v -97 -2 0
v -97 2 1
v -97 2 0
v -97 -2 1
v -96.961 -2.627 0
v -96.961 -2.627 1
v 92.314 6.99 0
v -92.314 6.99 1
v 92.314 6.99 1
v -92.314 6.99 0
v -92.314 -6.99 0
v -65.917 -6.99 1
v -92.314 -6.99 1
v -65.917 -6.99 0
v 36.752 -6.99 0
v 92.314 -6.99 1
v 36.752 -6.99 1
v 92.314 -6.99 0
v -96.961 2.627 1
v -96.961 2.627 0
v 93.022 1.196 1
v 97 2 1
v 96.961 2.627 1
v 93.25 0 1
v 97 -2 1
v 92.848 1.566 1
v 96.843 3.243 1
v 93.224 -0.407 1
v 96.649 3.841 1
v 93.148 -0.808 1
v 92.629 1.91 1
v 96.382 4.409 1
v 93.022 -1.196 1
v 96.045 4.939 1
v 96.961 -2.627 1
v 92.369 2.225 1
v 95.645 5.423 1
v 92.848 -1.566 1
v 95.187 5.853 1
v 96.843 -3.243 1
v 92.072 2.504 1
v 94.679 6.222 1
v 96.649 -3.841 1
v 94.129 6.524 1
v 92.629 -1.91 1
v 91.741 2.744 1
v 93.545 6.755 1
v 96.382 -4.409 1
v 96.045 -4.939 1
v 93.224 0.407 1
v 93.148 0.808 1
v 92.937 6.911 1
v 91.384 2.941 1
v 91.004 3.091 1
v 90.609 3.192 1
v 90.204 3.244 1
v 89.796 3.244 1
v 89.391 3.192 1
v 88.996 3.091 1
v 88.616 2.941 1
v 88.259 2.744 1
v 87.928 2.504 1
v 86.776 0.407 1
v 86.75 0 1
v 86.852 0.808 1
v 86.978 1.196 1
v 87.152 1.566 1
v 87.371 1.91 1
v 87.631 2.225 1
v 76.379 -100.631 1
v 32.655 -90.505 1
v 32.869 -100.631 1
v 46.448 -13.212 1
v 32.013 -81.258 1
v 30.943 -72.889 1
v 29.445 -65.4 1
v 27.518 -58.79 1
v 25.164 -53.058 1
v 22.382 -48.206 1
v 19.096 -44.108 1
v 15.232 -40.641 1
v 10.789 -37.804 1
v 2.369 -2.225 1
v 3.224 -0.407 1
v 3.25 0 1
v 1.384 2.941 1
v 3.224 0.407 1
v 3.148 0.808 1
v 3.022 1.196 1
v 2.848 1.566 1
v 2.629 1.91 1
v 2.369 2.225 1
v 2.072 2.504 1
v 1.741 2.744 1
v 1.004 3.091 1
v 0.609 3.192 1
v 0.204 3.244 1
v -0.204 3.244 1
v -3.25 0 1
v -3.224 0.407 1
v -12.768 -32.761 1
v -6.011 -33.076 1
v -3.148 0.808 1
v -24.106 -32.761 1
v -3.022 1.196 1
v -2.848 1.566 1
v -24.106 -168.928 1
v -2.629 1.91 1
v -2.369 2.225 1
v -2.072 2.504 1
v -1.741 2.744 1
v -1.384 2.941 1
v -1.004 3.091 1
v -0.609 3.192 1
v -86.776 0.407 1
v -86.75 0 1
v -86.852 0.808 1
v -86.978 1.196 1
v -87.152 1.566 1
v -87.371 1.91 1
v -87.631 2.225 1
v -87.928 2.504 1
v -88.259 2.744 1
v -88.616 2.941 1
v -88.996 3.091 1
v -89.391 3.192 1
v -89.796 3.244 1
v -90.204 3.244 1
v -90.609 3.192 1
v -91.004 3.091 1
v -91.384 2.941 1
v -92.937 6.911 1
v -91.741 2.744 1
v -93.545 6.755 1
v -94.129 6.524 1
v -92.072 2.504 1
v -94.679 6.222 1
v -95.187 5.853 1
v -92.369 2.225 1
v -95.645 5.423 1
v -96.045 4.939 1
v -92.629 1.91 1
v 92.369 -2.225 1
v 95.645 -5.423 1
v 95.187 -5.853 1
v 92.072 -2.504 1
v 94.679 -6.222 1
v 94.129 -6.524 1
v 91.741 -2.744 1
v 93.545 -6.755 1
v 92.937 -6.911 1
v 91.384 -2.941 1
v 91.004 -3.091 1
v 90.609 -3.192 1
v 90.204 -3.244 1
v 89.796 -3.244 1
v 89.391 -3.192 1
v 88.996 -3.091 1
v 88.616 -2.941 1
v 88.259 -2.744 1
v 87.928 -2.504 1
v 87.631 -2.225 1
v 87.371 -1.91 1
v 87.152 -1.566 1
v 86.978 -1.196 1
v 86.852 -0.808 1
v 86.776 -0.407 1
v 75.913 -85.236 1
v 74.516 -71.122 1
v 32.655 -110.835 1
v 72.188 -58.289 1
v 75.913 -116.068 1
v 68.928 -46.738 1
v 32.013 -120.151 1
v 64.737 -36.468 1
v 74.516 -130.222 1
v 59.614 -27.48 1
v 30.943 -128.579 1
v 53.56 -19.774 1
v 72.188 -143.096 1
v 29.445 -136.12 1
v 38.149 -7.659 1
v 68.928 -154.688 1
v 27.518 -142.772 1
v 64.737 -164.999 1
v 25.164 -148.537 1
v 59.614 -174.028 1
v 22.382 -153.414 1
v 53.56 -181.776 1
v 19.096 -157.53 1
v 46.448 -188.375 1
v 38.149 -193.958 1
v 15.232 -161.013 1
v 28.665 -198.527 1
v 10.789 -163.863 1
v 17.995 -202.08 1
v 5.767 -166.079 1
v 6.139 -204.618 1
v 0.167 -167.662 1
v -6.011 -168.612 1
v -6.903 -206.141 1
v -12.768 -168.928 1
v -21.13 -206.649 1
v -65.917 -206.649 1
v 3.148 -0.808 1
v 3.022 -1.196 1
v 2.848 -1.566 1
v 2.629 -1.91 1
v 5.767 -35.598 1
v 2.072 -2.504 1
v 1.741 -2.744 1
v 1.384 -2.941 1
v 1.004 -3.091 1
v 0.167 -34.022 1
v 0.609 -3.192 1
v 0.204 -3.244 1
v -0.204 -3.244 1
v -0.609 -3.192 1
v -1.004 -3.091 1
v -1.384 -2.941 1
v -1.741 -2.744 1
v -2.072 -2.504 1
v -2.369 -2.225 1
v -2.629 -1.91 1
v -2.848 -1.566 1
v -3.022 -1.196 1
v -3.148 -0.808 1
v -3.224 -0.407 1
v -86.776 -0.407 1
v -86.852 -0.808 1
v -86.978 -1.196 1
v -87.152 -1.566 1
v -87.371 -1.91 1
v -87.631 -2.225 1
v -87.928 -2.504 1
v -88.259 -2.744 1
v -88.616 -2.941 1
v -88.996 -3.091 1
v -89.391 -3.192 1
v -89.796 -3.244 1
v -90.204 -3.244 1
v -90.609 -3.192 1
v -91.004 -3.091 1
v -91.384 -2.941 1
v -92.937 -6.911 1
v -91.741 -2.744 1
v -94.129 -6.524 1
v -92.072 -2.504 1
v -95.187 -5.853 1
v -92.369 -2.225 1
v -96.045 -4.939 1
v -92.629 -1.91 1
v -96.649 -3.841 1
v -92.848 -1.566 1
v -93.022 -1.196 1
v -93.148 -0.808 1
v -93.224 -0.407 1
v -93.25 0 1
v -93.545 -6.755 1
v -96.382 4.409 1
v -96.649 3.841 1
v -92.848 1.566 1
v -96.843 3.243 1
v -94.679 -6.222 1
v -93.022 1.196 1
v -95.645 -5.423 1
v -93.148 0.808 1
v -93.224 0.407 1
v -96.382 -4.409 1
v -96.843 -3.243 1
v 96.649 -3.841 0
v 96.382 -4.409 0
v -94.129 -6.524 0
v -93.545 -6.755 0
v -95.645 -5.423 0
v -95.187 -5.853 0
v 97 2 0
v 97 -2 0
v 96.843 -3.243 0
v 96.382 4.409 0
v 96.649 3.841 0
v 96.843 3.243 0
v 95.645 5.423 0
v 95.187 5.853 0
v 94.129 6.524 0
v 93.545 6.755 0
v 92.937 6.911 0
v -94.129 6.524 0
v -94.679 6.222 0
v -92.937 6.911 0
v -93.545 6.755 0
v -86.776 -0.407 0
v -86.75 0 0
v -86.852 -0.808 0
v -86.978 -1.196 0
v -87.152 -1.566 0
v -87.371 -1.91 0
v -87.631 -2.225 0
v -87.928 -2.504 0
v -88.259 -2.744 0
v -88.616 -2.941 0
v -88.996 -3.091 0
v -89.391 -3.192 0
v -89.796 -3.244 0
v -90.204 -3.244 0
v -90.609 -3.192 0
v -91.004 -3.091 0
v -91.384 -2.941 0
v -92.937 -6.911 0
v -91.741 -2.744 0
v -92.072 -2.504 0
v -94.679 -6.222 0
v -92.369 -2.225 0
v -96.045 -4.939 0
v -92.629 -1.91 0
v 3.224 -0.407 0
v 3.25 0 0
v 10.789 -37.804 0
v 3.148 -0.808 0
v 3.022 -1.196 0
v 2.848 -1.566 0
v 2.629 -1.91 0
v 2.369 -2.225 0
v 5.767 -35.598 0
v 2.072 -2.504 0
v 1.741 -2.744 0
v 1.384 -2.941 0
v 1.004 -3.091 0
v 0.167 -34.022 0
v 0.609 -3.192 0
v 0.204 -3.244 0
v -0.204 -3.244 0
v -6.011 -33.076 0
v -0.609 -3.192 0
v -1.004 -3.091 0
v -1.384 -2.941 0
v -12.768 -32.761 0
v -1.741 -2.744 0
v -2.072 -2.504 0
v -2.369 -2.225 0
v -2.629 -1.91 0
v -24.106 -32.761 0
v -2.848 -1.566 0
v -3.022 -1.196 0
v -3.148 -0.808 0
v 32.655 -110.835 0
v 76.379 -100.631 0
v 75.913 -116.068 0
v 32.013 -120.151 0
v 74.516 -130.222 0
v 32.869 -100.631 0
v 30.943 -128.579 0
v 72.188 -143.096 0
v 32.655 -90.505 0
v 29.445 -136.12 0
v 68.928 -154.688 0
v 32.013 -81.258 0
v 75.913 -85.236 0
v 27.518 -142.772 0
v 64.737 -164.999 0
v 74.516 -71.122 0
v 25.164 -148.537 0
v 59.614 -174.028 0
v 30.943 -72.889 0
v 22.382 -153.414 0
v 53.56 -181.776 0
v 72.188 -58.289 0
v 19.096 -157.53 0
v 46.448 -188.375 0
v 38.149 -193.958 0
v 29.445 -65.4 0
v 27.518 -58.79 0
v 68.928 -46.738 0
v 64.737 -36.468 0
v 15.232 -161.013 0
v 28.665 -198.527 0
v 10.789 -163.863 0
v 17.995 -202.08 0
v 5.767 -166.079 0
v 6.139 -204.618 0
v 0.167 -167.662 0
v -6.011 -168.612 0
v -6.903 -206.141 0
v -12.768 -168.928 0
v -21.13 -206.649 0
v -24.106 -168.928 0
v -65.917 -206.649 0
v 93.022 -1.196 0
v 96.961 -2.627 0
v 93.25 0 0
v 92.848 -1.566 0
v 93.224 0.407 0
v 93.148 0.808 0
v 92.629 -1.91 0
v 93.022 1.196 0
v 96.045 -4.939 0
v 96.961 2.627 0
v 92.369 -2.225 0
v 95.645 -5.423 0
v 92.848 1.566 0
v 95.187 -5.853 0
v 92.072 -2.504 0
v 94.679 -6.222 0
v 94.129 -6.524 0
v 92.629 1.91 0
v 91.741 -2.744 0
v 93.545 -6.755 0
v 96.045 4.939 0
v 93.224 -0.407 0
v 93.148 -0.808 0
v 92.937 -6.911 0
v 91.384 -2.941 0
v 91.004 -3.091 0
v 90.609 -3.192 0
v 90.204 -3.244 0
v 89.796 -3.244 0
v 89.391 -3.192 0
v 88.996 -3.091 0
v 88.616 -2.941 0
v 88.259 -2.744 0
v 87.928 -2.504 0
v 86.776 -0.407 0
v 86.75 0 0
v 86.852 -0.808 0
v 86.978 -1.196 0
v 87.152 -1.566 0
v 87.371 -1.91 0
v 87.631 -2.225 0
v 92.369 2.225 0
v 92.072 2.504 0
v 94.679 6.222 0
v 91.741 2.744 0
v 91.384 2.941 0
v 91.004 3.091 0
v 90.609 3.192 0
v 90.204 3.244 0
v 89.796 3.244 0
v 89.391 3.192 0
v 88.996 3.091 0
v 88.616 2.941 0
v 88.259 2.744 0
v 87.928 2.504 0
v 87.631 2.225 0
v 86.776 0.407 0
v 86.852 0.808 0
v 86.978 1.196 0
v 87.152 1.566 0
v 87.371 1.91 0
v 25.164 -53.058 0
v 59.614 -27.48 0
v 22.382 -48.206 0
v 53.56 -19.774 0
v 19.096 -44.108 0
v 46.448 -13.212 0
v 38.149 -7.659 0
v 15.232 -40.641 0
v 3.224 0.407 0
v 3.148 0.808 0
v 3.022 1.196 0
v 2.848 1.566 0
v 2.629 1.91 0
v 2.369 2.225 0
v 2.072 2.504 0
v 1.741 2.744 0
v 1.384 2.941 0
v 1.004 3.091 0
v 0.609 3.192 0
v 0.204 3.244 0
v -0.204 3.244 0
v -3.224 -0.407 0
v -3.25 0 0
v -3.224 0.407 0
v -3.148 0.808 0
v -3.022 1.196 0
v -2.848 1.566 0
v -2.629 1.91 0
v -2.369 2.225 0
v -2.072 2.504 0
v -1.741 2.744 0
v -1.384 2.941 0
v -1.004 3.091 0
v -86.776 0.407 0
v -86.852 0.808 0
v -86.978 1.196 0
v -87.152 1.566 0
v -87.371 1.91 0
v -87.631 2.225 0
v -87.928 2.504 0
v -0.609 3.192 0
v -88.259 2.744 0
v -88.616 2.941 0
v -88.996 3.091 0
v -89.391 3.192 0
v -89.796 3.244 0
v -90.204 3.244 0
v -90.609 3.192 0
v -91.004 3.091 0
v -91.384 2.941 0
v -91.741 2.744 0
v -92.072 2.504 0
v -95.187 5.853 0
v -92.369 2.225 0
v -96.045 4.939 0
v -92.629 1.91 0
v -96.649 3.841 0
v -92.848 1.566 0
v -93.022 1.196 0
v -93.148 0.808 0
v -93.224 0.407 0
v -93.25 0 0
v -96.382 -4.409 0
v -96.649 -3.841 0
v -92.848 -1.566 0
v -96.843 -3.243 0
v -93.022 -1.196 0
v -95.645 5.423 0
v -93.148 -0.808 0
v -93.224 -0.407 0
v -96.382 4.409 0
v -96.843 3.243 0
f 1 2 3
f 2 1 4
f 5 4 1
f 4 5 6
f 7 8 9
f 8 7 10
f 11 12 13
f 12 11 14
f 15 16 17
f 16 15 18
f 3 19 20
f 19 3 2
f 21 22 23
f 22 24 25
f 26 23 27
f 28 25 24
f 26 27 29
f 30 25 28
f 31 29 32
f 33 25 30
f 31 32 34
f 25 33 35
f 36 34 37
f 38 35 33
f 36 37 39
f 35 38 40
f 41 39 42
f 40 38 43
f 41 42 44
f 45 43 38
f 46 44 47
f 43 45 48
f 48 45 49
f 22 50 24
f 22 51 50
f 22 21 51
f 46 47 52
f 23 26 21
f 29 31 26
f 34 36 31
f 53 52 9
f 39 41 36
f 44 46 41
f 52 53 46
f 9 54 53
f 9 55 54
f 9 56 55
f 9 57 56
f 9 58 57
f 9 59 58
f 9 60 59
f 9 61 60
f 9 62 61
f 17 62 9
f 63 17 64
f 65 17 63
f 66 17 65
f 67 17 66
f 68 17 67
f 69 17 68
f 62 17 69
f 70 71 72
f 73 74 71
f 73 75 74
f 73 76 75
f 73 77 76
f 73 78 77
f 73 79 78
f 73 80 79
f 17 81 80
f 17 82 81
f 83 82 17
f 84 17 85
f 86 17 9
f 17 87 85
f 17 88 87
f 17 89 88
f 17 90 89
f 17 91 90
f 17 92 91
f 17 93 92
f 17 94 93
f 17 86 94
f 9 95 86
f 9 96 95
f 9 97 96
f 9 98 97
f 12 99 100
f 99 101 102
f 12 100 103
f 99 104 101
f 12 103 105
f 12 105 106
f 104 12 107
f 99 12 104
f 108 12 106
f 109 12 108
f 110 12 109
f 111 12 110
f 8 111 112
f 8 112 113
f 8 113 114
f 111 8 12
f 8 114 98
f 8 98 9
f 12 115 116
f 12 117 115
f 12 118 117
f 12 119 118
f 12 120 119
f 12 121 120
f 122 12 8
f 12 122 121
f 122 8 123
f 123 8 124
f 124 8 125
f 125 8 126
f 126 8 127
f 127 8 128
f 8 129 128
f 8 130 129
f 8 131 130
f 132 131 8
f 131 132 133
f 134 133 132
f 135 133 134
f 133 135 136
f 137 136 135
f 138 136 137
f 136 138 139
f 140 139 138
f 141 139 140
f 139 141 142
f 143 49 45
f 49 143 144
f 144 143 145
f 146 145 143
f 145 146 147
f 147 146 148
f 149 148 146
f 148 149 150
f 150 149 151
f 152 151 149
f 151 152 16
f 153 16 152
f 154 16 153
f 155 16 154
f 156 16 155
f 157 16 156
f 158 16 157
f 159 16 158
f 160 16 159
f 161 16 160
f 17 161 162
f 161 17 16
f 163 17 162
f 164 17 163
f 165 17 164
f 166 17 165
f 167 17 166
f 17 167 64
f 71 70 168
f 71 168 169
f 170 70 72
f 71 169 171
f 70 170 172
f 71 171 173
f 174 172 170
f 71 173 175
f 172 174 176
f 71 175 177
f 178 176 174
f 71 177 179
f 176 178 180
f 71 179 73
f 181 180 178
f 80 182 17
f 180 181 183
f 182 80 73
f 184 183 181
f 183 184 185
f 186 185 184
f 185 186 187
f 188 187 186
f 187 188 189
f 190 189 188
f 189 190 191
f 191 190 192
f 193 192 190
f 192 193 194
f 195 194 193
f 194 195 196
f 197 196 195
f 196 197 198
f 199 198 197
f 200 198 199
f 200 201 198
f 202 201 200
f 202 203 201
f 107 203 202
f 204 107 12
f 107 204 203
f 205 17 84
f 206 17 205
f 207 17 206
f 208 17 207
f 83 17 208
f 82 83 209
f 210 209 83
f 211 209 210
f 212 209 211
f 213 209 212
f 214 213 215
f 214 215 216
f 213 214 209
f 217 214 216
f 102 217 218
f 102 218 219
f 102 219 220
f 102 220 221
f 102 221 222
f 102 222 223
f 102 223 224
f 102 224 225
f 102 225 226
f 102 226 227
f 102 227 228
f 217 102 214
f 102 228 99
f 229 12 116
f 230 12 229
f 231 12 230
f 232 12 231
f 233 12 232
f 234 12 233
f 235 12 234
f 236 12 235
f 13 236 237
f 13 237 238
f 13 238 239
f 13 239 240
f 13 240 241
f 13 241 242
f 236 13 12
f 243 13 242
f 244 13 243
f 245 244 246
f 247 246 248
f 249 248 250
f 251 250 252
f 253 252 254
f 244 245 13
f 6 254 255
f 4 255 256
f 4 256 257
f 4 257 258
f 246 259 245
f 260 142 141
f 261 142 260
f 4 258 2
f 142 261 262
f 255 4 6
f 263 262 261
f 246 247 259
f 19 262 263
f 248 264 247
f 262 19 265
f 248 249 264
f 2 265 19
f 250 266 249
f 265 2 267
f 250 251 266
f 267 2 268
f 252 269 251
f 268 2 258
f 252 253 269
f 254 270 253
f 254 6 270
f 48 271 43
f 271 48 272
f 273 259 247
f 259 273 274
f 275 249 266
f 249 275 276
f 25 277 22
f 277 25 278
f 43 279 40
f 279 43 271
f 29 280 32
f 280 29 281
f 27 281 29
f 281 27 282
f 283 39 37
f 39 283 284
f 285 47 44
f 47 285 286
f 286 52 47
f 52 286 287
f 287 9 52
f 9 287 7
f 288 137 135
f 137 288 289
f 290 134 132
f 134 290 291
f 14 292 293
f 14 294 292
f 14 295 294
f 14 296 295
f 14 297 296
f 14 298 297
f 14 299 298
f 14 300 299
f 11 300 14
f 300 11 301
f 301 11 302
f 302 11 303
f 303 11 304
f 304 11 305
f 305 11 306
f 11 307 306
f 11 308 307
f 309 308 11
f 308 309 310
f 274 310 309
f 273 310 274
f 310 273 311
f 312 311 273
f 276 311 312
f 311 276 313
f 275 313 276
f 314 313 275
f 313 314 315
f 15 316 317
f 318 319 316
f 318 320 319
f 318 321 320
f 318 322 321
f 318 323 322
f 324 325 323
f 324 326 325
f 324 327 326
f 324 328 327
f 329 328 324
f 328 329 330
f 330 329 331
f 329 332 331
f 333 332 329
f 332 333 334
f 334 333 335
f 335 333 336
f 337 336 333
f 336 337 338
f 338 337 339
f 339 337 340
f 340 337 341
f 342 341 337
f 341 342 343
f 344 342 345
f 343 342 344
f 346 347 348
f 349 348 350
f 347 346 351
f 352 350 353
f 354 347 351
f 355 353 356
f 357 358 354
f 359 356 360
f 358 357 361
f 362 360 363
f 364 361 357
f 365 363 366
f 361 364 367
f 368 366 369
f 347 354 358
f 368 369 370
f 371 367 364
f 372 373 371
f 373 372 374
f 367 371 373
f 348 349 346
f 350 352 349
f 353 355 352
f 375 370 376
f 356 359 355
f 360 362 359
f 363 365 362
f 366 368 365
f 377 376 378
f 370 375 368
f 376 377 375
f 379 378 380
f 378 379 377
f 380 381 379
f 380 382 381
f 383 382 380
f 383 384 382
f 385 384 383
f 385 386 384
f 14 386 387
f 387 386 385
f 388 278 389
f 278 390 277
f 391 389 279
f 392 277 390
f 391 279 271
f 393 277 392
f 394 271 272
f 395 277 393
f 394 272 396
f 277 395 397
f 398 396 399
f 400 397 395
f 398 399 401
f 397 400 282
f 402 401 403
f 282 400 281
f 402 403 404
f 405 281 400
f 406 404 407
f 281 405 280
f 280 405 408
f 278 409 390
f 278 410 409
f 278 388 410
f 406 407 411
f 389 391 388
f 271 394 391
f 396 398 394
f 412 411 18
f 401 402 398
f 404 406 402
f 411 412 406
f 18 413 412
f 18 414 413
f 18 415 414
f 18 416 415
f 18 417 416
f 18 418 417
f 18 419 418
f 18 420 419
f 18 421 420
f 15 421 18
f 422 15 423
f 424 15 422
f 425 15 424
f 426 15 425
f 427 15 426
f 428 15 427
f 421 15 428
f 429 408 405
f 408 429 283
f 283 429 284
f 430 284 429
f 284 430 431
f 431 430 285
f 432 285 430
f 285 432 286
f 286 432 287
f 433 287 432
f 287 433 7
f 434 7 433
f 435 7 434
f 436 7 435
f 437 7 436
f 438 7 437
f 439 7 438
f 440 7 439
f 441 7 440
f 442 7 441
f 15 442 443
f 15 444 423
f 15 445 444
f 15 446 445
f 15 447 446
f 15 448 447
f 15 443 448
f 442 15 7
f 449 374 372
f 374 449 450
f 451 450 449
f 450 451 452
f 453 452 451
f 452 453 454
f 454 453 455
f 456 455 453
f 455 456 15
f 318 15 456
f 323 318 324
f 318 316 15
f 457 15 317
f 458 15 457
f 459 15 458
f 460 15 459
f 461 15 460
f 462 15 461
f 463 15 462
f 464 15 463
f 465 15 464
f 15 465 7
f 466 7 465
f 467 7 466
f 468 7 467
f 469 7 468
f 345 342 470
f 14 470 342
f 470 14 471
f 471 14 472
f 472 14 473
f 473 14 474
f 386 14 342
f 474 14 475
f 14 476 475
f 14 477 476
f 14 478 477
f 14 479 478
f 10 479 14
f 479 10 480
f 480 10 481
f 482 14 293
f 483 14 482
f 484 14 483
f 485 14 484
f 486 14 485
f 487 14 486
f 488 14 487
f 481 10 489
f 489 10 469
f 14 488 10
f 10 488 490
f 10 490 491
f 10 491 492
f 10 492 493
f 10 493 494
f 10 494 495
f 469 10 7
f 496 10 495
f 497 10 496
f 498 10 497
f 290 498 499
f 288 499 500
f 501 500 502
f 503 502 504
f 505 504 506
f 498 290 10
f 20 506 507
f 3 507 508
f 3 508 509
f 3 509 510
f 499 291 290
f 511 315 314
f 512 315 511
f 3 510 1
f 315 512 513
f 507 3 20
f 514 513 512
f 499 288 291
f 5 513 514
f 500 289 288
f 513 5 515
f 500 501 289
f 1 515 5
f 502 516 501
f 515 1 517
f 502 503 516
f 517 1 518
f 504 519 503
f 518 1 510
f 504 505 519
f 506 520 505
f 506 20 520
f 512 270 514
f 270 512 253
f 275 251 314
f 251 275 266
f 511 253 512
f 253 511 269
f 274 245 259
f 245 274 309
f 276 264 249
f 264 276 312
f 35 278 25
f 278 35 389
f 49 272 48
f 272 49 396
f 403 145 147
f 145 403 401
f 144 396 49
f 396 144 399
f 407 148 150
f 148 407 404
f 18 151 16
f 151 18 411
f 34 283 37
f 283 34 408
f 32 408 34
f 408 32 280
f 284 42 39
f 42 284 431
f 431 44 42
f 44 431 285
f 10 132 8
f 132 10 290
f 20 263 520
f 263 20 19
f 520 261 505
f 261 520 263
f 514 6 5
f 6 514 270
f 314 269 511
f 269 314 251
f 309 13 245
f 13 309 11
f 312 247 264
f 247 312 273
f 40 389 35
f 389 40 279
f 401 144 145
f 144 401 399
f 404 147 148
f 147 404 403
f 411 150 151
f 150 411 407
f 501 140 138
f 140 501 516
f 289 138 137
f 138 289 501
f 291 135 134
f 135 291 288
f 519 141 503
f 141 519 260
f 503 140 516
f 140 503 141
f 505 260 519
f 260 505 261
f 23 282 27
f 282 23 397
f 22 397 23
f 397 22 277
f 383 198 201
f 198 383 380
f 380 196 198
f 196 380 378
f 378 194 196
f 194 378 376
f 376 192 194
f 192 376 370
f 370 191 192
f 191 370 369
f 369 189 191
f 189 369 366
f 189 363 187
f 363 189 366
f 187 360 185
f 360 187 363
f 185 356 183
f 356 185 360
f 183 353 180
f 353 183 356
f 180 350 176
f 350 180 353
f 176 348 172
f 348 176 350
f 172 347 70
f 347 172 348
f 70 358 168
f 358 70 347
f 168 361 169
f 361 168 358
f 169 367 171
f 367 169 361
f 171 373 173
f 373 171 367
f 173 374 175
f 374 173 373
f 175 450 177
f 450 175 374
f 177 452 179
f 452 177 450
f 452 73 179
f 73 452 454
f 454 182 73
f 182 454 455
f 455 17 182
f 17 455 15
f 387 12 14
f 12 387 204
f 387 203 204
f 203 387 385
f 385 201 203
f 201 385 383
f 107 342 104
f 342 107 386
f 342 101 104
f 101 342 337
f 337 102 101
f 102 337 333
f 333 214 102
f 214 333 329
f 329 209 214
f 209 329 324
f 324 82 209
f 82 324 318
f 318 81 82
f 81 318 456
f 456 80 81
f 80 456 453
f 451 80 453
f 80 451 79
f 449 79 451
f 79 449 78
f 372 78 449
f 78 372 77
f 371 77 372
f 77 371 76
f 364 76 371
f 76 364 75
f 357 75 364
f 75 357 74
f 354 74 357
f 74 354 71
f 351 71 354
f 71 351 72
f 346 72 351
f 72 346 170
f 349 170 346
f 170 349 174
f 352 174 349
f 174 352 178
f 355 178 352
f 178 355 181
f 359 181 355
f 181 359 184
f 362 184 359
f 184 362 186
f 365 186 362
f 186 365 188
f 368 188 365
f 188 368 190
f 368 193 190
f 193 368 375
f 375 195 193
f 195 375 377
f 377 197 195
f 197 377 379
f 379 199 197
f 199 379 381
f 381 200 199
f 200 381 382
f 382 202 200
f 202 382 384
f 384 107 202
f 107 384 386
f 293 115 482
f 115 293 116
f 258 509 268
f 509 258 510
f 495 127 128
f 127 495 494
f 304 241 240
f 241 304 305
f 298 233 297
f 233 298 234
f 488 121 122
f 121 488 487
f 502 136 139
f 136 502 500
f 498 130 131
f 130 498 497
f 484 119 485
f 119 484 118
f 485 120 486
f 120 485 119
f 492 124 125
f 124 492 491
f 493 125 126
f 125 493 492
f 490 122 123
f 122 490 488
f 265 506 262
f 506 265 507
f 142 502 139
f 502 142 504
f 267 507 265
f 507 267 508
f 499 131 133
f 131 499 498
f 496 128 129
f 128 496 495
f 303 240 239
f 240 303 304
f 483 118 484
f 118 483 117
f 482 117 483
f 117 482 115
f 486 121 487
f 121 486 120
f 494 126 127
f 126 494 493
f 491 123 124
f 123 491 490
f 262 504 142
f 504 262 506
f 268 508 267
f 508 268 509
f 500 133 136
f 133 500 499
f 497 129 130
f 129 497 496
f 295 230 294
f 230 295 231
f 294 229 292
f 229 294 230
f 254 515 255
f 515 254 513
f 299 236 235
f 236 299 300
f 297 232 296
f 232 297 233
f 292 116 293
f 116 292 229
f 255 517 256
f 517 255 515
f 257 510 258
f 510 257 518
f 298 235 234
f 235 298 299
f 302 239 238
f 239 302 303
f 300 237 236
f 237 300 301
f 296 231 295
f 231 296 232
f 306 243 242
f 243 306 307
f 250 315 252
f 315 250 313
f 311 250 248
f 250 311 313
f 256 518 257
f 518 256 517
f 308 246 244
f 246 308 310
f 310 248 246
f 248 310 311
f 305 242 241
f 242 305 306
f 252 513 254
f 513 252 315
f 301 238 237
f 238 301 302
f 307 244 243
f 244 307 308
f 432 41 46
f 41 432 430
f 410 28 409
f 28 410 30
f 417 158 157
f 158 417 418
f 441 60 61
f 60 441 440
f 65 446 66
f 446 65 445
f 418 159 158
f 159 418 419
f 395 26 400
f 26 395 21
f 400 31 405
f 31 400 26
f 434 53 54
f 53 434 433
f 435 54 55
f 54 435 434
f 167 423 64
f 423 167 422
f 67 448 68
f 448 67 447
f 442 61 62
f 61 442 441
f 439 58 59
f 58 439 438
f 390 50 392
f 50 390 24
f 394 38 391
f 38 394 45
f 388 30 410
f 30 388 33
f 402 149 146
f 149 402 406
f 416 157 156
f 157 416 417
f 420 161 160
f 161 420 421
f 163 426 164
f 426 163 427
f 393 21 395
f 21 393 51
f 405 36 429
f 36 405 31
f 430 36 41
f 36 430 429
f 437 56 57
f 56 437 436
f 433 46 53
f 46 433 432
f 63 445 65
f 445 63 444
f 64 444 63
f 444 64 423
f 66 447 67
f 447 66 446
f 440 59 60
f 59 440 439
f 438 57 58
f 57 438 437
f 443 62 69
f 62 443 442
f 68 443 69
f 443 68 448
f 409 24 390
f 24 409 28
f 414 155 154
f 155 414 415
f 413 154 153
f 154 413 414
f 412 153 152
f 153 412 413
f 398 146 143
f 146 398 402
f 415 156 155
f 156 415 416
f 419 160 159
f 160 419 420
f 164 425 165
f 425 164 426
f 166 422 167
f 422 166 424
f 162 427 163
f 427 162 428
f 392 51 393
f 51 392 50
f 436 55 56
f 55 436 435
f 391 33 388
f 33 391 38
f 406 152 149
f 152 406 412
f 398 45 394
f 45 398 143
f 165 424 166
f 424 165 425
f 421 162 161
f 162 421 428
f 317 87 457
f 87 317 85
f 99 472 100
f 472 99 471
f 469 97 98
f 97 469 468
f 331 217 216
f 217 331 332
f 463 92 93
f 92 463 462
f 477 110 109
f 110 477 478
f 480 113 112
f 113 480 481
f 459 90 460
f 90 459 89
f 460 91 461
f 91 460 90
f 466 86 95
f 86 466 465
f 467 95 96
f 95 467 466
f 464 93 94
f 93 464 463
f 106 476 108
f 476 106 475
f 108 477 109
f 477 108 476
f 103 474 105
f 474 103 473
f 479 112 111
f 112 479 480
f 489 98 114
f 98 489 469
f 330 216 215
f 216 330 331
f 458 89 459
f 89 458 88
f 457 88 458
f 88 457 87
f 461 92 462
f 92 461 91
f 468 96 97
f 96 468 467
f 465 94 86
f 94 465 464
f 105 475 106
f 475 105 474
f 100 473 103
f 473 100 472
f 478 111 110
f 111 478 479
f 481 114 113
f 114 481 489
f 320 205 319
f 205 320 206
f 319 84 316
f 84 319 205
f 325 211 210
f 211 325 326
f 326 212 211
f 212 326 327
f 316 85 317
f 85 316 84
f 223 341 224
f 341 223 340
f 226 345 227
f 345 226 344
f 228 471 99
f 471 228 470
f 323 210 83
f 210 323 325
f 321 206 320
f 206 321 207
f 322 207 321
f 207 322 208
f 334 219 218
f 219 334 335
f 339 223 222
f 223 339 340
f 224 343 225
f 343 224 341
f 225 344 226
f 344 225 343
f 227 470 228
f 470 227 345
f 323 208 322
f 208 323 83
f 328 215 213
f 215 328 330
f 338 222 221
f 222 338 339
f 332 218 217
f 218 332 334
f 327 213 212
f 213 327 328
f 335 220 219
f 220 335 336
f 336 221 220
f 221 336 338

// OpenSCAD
$fn = 50;


difference() {
	union() {
		translate(v = [0, 0, 0]) {
			rotate(a = [0, 0, 0]) {
				hull() {
					translate(v = [-92.0000000000, 2.0000000000, 0]) {
						rotate(a = [0, 0, 0]) {
							translate(v = [0, 0, 0]) {
								rotate(a = [0, 0, 0]) {
									cylinder(h = 1, r = 5);
								}
							}
						}
					}
					translate(v = [92.0000000000, 2.0000000000, 0]) {
						rotate(a = [0, 0, 0]) {
							translate(v = [0, 0, 0]) {
								rotate(a = [0, 0, 0]) {
									cylinder(h = 1, r = 5);
								}
							}
						}
					}
					translate(v = [-92.0000000000, -2.0000000000, 0]) {
						rotate(a = [0, 0, 0]) {
							translate(v = [0, 0, 0]) {
								rotate(a = [0, 0, 0]) {
									cylinder(h = 1, r = 5);
								}
							}
						}
					}
					translate(v = [92.0000000000, -2.0000000000, 0]) {
						rotate(a = [0, 0, 0]) {
							translate(v = [0, 0, 0]) {
								rotate(a = [0, 0, 0]) {
									cylinder(h = 1, r = 5);
								}
							}
						}
					}
				}
			}
		}
		translate(v = [0, 0, 0]) {
			rotate(a = [0, 0, 0]) {
				linear_extrude(height = 1) {
					text(font = "DejaVu Sans Mono:style=Bold", halign = "center", size = 209.0000000000, text = "D", valign = "top");
				}
			}
		}
	}
	union() {
		translate(v = [-90.0000000000, 0.0000000000, -125.0000000000]) {
			rotate(a = [0, 0, 0]) {
				cylinder(h = 250, r = 3.2500000000);
			}
		}
		translate(v = [90.0000000000, 0.0000000000, -125.0000000000]) {
			rotate(a = [0, 0, 0]) {
				cylinder(h = 250, r = 3.2500000000);
			}
		}
		translate(v = [90.0000000000, 0.0000000000, -125.0000000000]) {
			rotate(a = [0, 0, 0]) {
				cylinder(h = 250, r = 3.2500000000);
			}
		}
		translate(v = [0, 0, -125.0000000000]) {
			rotate(a = [0, 0, 0]) {
				cylinder(h = 250, r = 3.2500000000);
			}
		}
	}
}
